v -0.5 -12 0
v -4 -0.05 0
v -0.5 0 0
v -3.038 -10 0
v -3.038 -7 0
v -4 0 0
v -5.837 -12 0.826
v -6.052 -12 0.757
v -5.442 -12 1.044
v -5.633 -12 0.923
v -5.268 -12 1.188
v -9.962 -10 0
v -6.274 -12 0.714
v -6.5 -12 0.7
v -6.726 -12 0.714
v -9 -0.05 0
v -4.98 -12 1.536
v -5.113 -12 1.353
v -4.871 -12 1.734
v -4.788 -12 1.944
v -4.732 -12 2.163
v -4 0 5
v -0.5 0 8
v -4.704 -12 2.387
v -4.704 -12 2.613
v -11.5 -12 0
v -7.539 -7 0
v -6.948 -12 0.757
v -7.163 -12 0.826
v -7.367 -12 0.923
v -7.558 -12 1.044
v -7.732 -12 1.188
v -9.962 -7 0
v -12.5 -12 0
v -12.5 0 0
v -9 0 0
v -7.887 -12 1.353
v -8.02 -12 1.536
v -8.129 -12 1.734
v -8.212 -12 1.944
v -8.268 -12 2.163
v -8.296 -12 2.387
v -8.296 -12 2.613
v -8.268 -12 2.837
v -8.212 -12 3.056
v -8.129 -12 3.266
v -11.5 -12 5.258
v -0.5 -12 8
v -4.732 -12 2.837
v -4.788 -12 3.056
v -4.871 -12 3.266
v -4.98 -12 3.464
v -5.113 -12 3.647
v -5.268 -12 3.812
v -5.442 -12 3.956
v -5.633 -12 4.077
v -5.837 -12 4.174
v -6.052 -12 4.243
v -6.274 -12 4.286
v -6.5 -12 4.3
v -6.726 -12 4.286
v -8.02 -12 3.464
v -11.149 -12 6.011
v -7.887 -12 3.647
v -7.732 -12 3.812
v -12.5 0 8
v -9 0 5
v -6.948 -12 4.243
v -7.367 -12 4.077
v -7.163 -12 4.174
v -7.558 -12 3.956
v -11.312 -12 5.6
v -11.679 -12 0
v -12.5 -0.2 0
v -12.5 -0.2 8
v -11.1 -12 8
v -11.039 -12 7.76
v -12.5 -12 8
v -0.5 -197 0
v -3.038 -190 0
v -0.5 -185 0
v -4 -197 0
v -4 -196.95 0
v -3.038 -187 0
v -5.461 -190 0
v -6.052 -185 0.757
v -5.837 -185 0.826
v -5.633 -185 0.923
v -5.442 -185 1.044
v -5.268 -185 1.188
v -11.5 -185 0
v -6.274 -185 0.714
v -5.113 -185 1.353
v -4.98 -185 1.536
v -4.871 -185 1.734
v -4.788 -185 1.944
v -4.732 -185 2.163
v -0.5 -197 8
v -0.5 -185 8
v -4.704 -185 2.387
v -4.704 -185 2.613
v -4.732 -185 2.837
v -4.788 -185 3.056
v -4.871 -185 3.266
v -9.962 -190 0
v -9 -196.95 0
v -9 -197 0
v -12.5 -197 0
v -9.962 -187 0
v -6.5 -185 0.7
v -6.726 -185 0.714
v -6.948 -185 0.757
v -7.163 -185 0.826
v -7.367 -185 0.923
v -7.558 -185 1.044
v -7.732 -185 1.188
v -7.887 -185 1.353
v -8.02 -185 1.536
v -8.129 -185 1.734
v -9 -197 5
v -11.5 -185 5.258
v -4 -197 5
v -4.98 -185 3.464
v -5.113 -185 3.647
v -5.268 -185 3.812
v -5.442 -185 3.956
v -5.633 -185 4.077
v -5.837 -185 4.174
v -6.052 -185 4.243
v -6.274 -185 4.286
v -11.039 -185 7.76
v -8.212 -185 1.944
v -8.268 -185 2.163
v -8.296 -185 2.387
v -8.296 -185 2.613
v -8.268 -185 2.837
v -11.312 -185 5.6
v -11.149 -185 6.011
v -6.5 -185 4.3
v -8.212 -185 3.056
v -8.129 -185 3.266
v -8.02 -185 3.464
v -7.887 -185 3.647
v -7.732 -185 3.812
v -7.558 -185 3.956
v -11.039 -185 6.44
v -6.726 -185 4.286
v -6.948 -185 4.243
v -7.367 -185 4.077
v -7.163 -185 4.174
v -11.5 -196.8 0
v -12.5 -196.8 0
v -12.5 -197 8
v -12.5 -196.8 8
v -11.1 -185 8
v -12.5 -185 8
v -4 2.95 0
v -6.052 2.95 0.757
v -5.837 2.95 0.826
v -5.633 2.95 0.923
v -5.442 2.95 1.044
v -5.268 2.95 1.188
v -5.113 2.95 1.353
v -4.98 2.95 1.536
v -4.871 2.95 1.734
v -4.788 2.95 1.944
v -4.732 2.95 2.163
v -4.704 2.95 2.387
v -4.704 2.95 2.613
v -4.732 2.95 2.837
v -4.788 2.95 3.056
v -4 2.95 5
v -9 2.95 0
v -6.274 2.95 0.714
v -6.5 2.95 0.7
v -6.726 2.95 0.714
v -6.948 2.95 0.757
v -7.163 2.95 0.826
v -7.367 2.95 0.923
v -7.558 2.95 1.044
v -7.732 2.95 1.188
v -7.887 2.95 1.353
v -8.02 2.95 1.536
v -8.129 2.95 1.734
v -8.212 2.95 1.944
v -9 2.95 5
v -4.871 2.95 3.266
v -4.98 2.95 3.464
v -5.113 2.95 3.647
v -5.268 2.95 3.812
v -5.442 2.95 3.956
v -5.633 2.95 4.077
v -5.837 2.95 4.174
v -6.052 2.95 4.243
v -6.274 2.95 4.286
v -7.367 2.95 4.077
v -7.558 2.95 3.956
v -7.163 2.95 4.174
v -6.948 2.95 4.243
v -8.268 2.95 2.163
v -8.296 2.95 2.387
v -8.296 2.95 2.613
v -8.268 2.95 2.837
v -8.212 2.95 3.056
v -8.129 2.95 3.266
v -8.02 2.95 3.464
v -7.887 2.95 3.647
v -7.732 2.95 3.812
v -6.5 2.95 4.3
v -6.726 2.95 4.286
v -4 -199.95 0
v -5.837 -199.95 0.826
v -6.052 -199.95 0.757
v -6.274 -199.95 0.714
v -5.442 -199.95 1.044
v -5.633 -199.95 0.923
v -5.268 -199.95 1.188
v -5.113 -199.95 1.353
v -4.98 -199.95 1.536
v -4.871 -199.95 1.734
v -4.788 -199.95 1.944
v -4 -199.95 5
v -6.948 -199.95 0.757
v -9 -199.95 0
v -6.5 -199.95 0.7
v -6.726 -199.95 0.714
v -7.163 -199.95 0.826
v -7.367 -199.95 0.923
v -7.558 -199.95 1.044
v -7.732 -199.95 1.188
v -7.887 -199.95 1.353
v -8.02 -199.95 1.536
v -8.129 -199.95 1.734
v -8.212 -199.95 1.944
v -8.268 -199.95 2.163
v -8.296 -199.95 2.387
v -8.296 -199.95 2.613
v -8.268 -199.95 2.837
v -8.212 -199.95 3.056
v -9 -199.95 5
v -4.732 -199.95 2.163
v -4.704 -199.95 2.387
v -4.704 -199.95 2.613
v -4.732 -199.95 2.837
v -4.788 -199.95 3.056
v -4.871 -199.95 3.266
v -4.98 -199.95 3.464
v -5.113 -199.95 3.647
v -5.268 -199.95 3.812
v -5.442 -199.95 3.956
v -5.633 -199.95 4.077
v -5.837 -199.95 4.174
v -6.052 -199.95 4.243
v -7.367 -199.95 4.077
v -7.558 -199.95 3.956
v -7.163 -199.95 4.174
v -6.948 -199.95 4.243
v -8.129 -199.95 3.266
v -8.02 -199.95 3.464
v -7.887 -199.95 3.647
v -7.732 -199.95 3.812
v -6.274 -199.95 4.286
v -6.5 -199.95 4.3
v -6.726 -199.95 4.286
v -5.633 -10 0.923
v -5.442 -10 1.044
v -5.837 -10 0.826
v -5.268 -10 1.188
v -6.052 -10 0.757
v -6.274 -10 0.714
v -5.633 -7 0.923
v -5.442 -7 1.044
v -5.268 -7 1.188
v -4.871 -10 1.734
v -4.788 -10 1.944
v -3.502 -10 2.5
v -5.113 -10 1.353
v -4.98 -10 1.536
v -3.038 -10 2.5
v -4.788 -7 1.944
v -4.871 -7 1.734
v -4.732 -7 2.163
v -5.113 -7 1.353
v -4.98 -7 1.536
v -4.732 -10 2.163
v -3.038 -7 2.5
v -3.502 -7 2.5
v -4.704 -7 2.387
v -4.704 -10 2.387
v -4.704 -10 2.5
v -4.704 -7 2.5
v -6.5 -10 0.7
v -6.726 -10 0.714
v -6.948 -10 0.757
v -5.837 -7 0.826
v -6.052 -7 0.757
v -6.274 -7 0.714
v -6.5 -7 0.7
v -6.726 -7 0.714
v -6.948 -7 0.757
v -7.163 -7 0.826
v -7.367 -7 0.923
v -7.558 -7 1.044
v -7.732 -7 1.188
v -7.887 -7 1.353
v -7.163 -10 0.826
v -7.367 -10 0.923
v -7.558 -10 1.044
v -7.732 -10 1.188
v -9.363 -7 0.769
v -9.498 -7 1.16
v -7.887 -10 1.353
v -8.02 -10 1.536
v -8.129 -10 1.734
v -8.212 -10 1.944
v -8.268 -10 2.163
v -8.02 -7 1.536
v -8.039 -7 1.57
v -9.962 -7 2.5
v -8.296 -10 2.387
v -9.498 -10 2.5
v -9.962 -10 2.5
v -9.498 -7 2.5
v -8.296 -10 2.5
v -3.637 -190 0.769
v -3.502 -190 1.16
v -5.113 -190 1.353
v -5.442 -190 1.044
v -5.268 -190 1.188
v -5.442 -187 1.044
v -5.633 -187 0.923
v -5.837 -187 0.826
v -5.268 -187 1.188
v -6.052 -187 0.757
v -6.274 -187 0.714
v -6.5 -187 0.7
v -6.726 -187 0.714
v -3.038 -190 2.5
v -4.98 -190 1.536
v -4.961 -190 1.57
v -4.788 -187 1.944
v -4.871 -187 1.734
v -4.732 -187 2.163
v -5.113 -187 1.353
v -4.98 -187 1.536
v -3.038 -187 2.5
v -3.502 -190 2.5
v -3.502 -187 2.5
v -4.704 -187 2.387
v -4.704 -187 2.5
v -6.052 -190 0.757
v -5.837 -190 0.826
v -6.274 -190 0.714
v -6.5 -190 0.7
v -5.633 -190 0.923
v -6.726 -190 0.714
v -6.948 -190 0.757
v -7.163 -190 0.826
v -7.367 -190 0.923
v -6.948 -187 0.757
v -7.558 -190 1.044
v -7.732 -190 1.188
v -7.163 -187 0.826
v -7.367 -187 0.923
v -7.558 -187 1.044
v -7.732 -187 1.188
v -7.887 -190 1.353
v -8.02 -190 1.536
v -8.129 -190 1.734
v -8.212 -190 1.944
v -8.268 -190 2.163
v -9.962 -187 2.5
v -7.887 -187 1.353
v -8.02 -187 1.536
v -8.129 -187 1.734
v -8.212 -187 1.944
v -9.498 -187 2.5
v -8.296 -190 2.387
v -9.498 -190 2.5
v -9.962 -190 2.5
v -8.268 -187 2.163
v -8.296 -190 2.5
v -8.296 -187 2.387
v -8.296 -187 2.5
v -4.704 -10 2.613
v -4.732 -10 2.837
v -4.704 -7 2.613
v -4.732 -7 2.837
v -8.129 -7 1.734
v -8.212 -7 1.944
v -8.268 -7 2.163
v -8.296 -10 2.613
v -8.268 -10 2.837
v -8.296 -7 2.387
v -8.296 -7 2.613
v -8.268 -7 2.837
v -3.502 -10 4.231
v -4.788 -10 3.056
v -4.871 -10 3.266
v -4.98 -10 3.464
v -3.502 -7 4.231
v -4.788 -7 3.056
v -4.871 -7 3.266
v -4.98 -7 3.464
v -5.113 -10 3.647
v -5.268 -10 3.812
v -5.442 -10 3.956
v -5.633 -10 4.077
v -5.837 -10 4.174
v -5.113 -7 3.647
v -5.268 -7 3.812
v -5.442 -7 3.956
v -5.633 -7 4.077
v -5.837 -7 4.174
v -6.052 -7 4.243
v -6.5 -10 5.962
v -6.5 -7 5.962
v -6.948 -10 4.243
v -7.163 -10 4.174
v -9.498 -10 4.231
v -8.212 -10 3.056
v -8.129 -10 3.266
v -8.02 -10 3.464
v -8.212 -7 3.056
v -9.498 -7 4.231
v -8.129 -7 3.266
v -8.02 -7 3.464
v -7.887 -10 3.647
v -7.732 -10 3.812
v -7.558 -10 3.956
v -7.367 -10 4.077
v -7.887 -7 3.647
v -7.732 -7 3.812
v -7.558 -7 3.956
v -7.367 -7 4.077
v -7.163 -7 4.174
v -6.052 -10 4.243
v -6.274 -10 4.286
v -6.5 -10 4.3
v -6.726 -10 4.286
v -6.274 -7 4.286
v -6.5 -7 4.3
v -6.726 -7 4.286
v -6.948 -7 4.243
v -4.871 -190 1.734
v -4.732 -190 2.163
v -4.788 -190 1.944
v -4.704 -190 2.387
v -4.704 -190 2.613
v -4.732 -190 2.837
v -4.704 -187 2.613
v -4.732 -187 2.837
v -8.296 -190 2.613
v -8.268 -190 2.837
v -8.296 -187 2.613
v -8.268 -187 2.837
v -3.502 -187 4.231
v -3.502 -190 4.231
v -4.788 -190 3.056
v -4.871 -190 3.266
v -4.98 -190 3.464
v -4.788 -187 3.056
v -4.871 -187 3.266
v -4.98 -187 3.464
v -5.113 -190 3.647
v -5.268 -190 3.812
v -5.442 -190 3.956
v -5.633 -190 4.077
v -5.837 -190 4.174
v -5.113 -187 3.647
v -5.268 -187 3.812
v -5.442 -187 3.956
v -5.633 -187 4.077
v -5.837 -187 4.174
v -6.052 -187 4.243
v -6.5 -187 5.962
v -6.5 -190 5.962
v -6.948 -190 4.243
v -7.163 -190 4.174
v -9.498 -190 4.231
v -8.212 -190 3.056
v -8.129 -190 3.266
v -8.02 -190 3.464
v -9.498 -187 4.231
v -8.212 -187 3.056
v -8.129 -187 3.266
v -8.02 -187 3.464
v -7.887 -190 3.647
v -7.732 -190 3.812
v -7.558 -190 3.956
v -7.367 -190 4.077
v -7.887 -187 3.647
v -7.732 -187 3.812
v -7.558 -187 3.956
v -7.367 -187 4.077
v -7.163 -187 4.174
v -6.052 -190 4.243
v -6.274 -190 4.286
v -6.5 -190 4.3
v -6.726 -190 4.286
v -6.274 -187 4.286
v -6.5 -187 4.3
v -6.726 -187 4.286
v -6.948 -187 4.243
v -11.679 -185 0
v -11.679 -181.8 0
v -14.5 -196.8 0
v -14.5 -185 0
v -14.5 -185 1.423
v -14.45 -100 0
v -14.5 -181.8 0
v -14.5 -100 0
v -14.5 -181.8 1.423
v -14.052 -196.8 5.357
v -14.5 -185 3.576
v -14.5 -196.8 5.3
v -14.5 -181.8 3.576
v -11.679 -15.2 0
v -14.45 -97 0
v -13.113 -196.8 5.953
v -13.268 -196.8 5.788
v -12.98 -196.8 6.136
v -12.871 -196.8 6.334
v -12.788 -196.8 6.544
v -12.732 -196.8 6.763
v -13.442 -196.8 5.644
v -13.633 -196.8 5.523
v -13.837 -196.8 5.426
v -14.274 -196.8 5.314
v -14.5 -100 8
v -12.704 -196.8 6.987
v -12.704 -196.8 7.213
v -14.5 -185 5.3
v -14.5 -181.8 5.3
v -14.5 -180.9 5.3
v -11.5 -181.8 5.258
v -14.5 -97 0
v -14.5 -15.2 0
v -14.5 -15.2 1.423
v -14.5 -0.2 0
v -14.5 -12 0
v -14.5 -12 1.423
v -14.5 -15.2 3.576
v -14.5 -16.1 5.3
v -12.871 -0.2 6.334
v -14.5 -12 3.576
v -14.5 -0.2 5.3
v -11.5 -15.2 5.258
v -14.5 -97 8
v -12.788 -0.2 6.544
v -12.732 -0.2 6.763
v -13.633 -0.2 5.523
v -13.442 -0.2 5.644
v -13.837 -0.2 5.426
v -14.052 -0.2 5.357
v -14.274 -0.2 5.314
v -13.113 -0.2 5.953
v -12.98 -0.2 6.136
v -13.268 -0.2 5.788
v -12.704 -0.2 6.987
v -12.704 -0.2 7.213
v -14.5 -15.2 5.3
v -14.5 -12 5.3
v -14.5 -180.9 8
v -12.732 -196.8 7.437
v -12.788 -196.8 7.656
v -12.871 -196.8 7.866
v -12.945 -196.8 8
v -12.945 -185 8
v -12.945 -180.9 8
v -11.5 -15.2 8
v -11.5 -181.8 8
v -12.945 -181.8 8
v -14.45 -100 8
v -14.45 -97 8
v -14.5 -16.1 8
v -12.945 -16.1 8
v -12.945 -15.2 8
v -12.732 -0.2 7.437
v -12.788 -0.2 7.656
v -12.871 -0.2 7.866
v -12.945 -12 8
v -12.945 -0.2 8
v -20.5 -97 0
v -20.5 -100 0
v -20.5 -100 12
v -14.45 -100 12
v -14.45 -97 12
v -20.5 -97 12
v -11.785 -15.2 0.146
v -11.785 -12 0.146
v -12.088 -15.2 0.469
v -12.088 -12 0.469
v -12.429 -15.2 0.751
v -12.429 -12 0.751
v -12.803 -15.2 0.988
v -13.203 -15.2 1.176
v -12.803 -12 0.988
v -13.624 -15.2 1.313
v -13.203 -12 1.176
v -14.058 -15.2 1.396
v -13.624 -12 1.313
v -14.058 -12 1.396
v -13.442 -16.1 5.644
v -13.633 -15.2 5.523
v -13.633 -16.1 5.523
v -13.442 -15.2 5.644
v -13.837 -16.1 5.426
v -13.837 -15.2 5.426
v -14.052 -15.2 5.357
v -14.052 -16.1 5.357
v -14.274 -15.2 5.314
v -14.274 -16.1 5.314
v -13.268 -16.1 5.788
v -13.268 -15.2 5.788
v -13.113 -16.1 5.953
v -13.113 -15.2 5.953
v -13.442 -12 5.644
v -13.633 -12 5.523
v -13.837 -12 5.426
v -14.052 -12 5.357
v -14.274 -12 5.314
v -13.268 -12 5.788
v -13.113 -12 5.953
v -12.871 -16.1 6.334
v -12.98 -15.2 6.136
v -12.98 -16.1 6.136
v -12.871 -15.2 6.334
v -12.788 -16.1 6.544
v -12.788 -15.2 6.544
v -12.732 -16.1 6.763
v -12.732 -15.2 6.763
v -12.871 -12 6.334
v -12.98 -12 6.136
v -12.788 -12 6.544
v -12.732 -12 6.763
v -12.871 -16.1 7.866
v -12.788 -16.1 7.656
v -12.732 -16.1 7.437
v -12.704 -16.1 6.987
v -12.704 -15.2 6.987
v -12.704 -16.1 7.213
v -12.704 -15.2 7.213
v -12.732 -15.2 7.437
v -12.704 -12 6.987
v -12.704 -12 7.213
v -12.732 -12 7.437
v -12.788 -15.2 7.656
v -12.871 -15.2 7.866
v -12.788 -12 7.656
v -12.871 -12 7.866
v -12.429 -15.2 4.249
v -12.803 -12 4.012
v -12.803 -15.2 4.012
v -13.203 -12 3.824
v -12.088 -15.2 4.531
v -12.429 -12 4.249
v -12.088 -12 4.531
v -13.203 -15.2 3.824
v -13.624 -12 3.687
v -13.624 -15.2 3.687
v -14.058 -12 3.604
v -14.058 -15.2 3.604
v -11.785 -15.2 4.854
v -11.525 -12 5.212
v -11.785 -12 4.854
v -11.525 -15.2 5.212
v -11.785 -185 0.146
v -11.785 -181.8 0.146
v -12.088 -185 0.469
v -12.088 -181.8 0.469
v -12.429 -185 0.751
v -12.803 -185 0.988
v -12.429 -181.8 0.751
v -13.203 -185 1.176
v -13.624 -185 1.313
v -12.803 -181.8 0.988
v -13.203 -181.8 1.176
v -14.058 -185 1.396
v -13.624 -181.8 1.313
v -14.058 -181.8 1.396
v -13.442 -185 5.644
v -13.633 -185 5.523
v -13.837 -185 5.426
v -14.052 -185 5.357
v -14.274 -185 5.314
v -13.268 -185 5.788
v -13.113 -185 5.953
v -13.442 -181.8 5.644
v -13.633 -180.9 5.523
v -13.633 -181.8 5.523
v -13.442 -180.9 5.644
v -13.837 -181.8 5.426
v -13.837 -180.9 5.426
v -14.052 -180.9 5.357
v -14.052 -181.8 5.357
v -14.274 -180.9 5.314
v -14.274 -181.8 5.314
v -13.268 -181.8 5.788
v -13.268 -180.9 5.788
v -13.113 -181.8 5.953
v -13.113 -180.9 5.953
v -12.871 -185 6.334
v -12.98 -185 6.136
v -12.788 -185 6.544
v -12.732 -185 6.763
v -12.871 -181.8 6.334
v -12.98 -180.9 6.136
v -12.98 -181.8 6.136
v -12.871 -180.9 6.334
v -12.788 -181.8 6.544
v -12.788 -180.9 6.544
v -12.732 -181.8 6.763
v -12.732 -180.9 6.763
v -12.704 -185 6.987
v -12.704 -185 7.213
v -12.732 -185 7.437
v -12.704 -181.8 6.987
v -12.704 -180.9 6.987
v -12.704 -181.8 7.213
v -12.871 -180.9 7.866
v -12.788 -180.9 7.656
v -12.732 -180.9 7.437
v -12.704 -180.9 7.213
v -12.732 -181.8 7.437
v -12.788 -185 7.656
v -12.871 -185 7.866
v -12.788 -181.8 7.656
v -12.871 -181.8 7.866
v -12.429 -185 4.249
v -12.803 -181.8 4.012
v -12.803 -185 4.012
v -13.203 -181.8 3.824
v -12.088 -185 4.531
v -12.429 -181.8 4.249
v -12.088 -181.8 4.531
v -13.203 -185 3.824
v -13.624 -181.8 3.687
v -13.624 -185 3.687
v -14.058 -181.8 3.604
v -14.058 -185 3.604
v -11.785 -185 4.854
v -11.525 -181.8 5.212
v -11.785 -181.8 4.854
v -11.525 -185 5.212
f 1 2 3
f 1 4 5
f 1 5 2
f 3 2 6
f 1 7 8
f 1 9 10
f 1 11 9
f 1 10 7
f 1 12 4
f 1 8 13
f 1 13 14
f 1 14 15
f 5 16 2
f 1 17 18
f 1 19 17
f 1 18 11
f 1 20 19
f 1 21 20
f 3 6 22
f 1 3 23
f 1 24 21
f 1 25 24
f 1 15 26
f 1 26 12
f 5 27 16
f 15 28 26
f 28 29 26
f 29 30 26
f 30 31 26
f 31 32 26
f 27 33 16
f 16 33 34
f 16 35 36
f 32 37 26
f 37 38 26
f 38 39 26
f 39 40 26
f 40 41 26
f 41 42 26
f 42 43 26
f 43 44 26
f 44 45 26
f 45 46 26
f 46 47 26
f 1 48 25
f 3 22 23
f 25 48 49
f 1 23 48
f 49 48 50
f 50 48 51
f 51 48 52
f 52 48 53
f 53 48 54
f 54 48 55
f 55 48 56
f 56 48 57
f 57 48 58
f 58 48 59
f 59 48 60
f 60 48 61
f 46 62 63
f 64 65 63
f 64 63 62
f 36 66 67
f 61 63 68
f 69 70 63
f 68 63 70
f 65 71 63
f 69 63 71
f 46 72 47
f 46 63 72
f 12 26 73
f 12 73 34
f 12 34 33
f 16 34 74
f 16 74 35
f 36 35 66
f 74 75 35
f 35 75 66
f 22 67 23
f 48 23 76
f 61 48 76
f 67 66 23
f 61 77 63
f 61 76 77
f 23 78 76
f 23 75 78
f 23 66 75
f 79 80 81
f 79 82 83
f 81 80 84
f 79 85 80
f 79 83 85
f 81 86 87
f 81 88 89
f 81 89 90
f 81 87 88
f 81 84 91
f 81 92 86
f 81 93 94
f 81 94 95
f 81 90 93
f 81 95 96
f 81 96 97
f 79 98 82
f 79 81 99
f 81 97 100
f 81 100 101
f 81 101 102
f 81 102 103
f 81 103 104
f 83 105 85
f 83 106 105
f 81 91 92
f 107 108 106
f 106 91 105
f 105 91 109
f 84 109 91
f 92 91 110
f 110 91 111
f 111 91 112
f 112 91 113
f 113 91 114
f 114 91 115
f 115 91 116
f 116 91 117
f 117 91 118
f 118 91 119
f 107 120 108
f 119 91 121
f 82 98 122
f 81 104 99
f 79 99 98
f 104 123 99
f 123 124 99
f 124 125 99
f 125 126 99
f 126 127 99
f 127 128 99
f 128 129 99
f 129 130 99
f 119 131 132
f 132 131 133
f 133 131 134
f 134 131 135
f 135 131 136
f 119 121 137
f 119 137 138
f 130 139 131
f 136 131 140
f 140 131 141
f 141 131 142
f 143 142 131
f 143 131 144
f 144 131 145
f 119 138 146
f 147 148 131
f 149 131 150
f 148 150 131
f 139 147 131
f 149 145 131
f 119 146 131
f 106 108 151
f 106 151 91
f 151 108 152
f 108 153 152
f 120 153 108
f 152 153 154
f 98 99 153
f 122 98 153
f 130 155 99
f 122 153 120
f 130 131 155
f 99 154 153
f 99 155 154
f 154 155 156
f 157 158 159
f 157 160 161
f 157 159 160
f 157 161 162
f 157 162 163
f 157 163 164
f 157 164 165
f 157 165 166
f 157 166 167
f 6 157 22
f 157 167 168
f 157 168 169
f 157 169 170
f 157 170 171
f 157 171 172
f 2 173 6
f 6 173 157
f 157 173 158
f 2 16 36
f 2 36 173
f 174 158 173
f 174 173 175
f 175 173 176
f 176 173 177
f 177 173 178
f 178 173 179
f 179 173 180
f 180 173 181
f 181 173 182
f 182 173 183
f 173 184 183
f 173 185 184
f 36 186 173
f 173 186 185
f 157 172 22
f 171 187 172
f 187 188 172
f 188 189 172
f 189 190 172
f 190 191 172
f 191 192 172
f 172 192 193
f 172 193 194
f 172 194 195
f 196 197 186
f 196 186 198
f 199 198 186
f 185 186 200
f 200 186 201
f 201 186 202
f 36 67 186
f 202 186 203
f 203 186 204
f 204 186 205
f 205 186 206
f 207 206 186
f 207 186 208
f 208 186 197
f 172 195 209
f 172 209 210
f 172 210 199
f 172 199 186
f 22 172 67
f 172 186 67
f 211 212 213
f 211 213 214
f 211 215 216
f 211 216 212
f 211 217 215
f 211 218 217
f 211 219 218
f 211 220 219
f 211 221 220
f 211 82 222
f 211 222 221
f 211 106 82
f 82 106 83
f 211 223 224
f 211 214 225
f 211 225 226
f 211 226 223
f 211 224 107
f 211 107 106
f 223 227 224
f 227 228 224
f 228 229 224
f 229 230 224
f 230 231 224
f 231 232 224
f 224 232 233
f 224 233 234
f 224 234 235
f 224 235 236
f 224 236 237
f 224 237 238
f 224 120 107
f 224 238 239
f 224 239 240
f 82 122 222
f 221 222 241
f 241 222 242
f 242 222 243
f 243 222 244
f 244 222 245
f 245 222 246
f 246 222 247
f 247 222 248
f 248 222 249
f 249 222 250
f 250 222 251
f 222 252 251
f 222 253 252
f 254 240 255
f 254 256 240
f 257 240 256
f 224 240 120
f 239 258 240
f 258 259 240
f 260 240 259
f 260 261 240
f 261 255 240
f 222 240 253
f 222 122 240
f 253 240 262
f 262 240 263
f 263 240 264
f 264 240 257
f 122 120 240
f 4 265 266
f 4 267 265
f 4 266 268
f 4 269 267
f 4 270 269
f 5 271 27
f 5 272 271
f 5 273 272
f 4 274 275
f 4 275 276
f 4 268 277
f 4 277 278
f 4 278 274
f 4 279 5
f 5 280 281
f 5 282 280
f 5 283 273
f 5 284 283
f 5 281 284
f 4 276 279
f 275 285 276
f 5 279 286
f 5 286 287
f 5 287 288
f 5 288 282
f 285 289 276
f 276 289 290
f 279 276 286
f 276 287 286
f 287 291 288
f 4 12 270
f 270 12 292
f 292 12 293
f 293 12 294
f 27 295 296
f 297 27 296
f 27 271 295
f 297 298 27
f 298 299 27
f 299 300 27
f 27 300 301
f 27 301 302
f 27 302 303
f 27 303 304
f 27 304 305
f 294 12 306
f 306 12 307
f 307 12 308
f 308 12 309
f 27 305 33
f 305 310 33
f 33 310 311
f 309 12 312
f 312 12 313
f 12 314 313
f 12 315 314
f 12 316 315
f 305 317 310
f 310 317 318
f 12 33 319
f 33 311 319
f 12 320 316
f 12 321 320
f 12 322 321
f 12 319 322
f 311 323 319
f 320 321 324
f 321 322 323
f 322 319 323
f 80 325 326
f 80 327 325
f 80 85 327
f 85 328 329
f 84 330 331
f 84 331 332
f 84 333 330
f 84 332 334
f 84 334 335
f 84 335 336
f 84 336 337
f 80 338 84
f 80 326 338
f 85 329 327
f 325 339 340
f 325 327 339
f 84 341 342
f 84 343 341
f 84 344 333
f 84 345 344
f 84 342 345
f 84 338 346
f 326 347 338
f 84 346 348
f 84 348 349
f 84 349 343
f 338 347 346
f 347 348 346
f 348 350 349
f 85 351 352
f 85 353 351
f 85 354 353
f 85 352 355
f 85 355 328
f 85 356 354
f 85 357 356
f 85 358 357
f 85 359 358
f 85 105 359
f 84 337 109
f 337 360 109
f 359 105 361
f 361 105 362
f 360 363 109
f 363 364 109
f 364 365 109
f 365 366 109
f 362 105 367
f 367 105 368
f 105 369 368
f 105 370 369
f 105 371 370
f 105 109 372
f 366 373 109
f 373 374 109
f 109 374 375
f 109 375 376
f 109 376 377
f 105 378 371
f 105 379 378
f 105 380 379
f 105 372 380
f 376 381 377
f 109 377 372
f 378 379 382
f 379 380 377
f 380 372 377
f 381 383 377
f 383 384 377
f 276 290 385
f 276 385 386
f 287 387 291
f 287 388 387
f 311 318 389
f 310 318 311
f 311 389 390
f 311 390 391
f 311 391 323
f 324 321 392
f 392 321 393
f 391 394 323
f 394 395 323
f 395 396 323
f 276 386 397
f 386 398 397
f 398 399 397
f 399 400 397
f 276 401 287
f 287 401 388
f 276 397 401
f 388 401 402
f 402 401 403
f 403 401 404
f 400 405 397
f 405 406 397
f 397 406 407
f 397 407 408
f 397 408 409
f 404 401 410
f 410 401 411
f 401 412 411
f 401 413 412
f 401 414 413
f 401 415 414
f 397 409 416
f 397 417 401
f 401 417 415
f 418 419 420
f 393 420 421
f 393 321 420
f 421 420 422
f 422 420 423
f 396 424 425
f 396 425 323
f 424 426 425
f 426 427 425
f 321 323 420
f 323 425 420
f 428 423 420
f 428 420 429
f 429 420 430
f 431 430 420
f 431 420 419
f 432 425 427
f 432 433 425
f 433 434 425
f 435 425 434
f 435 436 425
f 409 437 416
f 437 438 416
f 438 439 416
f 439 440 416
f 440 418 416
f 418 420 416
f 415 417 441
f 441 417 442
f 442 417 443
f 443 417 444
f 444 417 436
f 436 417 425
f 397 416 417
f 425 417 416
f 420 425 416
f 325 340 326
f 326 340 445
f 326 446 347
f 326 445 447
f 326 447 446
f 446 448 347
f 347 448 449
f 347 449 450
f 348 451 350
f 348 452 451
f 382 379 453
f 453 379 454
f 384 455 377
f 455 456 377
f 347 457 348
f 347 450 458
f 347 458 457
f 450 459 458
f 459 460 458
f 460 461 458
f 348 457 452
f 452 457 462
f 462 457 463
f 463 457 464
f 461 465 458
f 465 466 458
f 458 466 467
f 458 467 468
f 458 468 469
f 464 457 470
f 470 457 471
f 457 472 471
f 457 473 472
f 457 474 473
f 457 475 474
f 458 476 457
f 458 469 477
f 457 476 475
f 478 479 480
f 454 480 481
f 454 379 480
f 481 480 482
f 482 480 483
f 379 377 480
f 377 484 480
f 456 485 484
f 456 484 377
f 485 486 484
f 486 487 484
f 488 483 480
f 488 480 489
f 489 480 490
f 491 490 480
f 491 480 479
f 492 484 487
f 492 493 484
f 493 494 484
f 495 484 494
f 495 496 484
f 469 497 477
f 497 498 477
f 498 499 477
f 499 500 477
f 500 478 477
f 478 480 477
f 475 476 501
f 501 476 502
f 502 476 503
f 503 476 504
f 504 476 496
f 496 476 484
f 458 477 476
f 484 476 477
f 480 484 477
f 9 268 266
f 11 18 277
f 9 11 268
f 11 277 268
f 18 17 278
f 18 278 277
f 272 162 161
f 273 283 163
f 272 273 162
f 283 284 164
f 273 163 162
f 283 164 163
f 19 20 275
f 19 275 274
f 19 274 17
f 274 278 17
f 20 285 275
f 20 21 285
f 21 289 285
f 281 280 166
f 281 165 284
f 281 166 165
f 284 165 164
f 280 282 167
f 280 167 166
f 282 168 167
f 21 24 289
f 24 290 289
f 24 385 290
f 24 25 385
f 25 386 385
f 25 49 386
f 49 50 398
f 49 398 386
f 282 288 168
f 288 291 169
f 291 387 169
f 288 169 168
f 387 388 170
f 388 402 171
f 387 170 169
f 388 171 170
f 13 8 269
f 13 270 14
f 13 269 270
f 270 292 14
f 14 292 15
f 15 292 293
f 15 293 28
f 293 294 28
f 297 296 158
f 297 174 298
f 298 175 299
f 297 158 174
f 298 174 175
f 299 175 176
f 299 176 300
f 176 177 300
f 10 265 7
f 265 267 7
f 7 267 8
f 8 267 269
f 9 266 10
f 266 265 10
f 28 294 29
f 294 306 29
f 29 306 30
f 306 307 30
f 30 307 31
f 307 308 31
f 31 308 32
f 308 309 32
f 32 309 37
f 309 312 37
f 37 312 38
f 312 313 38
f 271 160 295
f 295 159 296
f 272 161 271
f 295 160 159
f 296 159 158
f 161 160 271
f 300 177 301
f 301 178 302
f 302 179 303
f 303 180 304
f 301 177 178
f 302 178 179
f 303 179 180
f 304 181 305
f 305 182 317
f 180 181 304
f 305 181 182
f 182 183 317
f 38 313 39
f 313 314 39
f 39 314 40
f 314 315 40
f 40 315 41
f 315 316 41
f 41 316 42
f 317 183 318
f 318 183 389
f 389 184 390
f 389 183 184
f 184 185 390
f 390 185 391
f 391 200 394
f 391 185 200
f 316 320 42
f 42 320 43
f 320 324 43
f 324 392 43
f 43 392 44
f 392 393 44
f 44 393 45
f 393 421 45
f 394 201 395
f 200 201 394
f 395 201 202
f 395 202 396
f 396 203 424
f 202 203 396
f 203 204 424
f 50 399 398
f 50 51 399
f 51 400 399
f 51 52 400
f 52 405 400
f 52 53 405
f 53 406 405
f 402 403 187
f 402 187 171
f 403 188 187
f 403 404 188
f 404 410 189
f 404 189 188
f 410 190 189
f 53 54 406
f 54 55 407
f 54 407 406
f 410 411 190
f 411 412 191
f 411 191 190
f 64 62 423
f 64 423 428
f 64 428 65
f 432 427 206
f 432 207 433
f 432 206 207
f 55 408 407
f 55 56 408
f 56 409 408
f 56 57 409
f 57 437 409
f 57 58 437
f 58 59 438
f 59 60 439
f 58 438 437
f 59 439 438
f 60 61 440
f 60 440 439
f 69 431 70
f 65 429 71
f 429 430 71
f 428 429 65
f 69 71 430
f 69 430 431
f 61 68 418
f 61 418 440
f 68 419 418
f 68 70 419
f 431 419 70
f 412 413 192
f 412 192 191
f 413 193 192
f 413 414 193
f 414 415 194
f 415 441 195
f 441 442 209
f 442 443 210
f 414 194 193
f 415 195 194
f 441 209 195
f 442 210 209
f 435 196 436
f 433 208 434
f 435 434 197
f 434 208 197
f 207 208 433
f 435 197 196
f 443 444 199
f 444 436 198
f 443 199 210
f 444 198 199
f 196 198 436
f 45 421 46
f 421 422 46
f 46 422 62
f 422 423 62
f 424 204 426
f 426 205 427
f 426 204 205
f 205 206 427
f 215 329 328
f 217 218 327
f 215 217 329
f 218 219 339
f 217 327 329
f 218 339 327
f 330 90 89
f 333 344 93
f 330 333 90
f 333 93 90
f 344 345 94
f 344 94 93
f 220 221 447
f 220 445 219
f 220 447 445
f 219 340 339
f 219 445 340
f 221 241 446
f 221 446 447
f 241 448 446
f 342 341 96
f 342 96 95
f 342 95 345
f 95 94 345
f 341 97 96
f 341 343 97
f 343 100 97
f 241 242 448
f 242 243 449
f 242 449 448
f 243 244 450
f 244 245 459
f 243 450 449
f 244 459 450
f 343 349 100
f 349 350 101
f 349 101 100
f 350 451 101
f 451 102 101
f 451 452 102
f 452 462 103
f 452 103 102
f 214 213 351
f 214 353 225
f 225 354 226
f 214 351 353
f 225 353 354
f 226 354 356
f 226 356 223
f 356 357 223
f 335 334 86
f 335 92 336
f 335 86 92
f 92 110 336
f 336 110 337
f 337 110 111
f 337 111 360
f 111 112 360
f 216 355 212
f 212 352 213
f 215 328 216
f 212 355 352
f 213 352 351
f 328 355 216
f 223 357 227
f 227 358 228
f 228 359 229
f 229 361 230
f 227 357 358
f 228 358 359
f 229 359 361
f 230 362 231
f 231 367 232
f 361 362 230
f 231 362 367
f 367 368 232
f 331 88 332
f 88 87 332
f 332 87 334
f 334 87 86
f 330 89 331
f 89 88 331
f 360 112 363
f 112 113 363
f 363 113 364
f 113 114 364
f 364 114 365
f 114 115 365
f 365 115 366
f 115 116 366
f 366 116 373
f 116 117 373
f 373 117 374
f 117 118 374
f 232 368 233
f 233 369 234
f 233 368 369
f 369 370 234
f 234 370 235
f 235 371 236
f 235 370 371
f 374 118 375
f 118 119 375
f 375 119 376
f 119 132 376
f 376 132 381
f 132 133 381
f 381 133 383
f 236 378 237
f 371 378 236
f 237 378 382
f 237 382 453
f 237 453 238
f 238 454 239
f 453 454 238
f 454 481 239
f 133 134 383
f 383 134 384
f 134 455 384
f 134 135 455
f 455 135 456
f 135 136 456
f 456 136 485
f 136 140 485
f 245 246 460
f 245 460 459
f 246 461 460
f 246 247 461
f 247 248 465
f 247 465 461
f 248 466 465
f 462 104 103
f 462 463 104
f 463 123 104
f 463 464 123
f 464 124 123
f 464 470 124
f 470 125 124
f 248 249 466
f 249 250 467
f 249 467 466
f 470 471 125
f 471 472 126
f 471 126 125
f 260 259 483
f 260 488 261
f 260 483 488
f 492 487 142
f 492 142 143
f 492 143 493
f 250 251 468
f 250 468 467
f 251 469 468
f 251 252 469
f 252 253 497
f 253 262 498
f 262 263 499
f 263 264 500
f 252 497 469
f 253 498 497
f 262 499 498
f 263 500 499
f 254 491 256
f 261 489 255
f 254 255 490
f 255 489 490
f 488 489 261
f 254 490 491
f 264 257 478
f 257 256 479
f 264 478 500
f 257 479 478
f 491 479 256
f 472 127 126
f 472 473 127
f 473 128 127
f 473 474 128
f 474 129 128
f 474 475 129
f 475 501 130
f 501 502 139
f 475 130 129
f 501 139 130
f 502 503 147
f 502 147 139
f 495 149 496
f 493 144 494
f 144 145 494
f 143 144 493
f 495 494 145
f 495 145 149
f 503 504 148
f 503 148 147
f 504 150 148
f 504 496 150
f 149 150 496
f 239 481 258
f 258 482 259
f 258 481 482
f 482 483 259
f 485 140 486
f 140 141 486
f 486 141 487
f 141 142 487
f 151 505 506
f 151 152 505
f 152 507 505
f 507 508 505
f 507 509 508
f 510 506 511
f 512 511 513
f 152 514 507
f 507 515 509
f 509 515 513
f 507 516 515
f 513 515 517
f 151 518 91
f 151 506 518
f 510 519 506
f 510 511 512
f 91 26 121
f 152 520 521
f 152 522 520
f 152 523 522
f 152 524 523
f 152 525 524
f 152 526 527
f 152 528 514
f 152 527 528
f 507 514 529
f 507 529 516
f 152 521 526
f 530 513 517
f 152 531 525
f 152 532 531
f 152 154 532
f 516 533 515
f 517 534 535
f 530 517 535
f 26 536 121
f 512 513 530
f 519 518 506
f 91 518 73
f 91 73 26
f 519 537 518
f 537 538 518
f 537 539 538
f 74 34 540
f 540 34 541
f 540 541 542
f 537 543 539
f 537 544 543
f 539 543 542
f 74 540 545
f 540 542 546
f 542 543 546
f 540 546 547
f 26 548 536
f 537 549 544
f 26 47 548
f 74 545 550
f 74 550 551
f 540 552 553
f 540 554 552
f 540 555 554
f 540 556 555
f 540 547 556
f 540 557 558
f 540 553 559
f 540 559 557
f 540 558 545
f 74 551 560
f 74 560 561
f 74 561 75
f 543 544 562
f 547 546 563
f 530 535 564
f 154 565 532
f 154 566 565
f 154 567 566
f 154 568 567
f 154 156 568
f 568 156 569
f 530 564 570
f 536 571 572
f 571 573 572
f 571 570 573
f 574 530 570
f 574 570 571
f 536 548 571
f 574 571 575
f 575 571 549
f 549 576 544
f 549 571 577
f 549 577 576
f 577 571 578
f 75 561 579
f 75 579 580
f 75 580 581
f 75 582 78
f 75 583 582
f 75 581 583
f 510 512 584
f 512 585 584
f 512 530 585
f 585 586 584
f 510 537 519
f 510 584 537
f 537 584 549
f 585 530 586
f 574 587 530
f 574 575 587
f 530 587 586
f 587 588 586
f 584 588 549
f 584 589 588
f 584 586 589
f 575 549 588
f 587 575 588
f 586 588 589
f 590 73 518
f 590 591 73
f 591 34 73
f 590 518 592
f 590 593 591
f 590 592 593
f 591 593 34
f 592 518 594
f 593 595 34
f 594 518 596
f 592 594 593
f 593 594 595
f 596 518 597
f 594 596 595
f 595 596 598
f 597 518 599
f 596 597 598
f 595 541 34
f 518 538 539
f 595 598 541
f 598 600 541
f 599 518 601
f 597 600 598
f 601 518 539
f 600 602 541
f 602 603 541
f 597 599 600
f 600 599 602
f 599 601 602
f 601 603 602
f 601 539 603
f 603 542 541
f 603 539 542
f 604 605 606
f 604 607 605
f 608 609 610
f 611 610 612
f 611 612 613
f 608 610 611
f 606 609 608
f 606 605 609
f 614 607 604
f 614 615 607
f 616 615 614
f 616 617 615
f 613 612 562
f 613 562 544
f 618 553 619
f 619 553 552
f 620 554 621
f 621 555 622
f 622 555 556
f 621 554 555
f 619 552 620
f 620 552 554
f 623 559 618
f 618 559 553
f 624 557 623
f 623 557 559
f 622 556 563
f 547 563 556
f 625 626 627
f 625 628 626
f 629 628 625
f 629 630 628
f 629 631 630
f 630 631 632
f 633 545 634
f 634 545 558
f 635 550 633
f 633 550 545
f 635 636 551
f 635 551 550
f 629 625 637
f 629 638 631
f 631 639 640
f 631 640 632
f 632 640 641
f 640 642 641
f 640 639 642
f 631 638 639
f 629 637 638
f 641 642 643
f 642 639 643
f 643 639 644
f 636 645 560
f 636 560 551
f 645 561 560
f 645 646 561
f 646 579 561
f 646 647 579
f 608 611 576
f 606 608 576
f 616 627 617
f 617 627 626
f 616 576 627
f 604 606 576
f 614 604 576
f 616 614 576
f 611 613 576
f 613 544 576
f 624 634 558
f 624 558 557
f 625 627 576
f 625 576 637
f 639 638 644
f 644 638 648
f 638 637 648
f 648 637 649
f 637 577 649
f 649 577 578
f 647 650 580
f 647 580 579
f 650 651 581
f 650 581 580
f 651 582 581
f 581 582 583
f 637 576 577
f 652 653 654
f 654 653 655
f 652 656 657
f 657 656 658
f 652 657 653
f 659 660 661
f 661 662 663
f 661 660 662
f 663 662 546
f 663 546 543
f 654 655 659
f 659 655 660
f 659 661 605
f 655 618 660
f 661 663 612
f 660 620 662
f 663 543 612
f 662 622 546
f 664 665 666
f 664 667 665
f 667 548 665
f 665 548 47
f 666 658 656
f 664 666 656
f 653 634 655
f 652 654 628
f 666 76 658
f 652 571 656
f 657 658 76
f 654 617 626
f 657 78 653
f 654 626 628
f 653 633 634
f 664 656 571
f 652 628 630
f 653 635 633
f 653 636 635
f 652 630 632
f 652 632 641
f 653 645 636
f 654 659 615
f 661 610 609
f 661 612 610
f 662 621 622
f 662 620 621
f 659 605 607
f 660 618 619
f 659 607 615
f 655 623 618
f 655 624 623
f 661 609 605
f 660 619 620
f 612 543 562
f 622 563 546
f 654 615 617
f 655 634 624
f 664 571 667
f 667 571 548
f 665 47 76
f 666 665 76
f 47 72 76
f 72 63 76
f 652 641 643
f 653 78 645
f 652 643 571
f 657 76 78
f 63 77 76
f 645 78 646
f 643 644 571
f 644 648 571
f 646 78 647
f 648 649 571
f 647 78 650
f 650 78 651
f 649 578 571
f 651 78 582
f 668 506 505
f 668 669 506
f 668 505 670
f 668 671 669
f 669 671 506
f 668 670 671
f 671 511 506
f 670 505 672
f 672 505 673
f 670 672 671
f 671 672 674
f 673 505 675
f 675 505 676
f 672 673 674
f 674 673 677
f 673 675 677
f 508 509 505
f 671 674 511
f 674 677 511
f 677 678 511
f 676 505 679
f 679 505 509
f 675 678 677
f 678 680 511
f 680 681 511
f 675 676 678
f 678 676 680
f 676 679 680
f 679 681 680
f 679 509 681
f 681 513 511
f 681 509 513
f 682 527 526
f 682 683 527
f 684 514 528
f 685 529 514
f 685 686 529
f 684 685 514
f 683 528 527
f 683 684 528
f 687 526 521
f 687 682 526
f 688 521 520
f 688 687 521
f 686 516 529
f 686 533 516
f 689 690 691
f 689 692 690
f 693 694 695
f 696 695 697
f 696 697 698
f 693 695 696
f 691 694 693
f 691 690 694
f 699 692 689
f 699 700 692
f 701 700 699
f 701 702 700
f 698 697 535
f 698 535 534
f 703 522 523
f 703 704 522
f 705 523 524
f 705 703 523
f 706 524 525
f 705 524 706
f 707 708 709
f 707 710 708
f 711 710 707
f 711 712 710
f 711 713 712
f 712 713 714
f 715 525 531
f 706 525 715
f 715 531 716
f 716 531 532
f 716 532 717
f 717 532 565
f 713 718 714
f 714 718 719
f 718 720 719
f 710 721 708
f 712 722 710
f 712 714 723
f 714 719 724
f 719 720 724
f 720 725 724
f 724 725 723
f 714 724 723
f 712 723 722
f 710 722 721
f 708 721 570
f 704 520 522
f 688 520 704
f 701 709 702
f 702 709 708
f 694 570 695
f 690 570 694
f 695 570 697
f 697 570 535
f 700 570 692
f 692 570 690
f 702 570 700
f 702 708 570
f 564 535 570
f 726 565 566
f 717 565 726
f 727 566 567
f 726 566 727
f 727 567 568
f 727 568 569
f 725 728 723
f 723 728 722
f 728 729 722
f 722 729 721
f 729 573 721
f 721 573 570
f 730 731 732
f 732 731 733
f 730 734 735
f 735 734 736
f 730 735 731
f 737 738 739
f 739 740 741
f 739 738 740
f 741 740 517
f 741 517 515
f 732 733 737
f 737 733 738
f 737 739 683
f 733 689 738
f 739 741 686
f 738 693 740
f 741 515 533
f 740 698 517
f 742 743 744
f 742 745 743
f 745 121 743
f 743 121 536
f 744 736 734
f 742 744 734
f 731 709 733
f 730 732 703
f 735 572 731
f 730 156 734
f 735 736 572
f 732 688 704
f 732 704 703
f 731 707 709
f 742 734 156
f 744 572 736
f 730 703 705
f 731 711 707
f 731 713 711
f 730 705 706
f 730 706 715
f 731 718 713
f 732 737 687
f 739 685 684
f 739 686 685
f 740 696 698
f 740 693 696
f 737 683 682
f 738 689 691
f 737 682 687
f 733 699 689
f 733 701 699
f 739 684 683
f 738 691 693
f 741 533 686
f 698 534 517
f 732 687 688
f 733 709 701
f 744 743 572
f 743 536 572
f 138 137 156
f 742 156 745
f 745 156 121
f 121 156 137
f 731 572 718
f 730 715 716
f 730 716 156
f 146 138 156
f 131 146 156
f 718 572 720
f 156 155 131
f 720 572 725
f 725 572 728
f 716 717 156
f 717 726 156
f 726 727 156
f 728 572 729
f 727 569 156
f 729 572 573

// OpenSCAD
$fn = 50;

difference() {
	union() {
		translate(v = [0, 0, 0]) {
			rotate(a = [0, 0, 0]) {
				difference() {
					union() {
						translate(v = [0, 0, 2.5]) {
							rotate(a = [0, -90, 0]) {
								difference() {
									union() {
										translate(v = [0, 0, 0]) {
											rotate(a = [0, 0, 0]) {
												difference() {
													union() {
														translate(v = [-2.5, -12.0, 0.5]) {
															cube(size = [8.0, 12.0, 12.0]);
														}
														translate(v = [-2.5, -0.05, 4.0]) {
															cube(size = [5.0, 3.0, 5.0]);
														}
													}
													union() {
														translate(v = [0, -7.0, 6.5]) {
															rotate(a = [90, 0, 0]) {
																difference() {
																	union() {
																		translate(v = [-20.0, -3.4619999999999997, 0]) {
																			cube(size = [20, 6.9239999999999995, 3]);
																		}
																		linear_extrude(height = 3) {
																			polygon(points = [[3.4619999999999997, 0.0], [1.7310000000000003, 2.9981799479017264], [-1.7309999999999992, 2.9981799479017264], [-3.4619999999999997, 4.2397272186481365e-16], [-1.7310000000000014, -2.998179947901726], [1.7309999999999977, -2.9981799479017277]]);
																		}
																	}
																	union();
																}
															}
														}
														translate(v = [0, 3.0500000000000003, 6.5]) {
															rotate(a = [90, 0, 0]) {
																cylinder(h = 22.95, r = 1.8);
															}
														}
													}
												}
											}
										}
										translate(v = [0, -197.0, 13.0]) {
											rotate(a = [180, 0, 0]) {
												difference() {
													union() {
														translate(v = [-2.5, -12.0, 0.5]) {
															cube(size = [8.0, 12.0, 12.0]);
														}
														translate(v = [-2.5, -0.05, 4.0]) {
															cube(size = [5.0, 3.0, 5.0]);
														}
													}
													union() {
														translate(v = [0, -7.0, 6.5]) {
															rotate(a = [90, 0, 0]) {
																difference() {
																	union() {
																		translate(v = [-20.0, -3.4619999999999997, 0]) {
																			cube(size = [20, 6.9239999999999995, 3]);
																		}
																		linear_extrude(height = 3) {
																			polygon(points = [[3.4619999999999997, 0.0], [1.7310000000000003, 2.9981799479017264], [-1.7309999999999992, 2.9981799479017264], [-3.4619999999999997, 4.2397272186481365e-16], [-1.7310000000000014, -2.998179947901726], [1.7309999999999977, -2.9981799479017277]]);
																		}
																	}
																	union();
																}
															}
														}
														translate(v = [0, 3.0500000000000003, 6.5]) {
															rotate(a = [90, 0, 0]) {
																cylinder(h = 22.95, r = 1.8);
															}
														}
													}
												}
											}
										}
										translate(v = [-2.5, -196.8, 11.5]) {
											cube(size = [8.0, 196.6, 3.0]);
										}
										translate(v = [-2.5, -100.0, 14.45]) {
											cube(size = [12.0, 3.0, 6.05]);
										}
									}
									union() {
										translate(v = [-4.600000000000001, 0.1, 14.5]) {
											rotate(a = [90, 0, 0]) {
												cylinder(h = 16.2, r = 1.8);
											}
										}
										translate(v = [-4.600000000000001, -12.0, 14.5]) {
											rotate(a = [90, 0, 0]) {
												cylinder(h = 3.2, r = 3.5235);
											}
										}
										translate(v = [4.600000000000001, 0.1, 14.5]) {
											rotate(a = [90, 0, 0]) {
												cylinder(h = 16.2, r = 1.8);
											}
										}
										translate(v = [4.600000000000001, -12.0, 14.5]) {
											rotate(a = [90, 0, 0]) {
												cylinder(h = 3.2, r = 3.5235);
											}
										}
										translate(v = [-4.600000000000001, -197.1, 14.5]) {
											rotate(a = [-90, 0, 0]) {
												cylinder(h = 16.2, r = 1.8);
											}
										}
										translate(v = [-4.600000000000001, -185.0, 14.5]) {
											rotate(a = [-90, 0, 0]) {
												cylinder(h = 3.2, r = 3.5235);
											}
										}
										translate(v = [4.600000000000001, -197.1, 14.5]) {
											rotate(a = [-90, 0, 0]) {
												cylinder(h = 16.2, r = 1.8);
											}
										}
										translate(v = [4.600000000000001, -185.0, 14.5]) {
											rotate(a = [-90, 0, 0]) {
												cylinder(h = 3.2, r = 3.5235);
											}
										}
									}
								}
							}
						}
					}
					union();
				}
			}
		}
	}
	union();
}
